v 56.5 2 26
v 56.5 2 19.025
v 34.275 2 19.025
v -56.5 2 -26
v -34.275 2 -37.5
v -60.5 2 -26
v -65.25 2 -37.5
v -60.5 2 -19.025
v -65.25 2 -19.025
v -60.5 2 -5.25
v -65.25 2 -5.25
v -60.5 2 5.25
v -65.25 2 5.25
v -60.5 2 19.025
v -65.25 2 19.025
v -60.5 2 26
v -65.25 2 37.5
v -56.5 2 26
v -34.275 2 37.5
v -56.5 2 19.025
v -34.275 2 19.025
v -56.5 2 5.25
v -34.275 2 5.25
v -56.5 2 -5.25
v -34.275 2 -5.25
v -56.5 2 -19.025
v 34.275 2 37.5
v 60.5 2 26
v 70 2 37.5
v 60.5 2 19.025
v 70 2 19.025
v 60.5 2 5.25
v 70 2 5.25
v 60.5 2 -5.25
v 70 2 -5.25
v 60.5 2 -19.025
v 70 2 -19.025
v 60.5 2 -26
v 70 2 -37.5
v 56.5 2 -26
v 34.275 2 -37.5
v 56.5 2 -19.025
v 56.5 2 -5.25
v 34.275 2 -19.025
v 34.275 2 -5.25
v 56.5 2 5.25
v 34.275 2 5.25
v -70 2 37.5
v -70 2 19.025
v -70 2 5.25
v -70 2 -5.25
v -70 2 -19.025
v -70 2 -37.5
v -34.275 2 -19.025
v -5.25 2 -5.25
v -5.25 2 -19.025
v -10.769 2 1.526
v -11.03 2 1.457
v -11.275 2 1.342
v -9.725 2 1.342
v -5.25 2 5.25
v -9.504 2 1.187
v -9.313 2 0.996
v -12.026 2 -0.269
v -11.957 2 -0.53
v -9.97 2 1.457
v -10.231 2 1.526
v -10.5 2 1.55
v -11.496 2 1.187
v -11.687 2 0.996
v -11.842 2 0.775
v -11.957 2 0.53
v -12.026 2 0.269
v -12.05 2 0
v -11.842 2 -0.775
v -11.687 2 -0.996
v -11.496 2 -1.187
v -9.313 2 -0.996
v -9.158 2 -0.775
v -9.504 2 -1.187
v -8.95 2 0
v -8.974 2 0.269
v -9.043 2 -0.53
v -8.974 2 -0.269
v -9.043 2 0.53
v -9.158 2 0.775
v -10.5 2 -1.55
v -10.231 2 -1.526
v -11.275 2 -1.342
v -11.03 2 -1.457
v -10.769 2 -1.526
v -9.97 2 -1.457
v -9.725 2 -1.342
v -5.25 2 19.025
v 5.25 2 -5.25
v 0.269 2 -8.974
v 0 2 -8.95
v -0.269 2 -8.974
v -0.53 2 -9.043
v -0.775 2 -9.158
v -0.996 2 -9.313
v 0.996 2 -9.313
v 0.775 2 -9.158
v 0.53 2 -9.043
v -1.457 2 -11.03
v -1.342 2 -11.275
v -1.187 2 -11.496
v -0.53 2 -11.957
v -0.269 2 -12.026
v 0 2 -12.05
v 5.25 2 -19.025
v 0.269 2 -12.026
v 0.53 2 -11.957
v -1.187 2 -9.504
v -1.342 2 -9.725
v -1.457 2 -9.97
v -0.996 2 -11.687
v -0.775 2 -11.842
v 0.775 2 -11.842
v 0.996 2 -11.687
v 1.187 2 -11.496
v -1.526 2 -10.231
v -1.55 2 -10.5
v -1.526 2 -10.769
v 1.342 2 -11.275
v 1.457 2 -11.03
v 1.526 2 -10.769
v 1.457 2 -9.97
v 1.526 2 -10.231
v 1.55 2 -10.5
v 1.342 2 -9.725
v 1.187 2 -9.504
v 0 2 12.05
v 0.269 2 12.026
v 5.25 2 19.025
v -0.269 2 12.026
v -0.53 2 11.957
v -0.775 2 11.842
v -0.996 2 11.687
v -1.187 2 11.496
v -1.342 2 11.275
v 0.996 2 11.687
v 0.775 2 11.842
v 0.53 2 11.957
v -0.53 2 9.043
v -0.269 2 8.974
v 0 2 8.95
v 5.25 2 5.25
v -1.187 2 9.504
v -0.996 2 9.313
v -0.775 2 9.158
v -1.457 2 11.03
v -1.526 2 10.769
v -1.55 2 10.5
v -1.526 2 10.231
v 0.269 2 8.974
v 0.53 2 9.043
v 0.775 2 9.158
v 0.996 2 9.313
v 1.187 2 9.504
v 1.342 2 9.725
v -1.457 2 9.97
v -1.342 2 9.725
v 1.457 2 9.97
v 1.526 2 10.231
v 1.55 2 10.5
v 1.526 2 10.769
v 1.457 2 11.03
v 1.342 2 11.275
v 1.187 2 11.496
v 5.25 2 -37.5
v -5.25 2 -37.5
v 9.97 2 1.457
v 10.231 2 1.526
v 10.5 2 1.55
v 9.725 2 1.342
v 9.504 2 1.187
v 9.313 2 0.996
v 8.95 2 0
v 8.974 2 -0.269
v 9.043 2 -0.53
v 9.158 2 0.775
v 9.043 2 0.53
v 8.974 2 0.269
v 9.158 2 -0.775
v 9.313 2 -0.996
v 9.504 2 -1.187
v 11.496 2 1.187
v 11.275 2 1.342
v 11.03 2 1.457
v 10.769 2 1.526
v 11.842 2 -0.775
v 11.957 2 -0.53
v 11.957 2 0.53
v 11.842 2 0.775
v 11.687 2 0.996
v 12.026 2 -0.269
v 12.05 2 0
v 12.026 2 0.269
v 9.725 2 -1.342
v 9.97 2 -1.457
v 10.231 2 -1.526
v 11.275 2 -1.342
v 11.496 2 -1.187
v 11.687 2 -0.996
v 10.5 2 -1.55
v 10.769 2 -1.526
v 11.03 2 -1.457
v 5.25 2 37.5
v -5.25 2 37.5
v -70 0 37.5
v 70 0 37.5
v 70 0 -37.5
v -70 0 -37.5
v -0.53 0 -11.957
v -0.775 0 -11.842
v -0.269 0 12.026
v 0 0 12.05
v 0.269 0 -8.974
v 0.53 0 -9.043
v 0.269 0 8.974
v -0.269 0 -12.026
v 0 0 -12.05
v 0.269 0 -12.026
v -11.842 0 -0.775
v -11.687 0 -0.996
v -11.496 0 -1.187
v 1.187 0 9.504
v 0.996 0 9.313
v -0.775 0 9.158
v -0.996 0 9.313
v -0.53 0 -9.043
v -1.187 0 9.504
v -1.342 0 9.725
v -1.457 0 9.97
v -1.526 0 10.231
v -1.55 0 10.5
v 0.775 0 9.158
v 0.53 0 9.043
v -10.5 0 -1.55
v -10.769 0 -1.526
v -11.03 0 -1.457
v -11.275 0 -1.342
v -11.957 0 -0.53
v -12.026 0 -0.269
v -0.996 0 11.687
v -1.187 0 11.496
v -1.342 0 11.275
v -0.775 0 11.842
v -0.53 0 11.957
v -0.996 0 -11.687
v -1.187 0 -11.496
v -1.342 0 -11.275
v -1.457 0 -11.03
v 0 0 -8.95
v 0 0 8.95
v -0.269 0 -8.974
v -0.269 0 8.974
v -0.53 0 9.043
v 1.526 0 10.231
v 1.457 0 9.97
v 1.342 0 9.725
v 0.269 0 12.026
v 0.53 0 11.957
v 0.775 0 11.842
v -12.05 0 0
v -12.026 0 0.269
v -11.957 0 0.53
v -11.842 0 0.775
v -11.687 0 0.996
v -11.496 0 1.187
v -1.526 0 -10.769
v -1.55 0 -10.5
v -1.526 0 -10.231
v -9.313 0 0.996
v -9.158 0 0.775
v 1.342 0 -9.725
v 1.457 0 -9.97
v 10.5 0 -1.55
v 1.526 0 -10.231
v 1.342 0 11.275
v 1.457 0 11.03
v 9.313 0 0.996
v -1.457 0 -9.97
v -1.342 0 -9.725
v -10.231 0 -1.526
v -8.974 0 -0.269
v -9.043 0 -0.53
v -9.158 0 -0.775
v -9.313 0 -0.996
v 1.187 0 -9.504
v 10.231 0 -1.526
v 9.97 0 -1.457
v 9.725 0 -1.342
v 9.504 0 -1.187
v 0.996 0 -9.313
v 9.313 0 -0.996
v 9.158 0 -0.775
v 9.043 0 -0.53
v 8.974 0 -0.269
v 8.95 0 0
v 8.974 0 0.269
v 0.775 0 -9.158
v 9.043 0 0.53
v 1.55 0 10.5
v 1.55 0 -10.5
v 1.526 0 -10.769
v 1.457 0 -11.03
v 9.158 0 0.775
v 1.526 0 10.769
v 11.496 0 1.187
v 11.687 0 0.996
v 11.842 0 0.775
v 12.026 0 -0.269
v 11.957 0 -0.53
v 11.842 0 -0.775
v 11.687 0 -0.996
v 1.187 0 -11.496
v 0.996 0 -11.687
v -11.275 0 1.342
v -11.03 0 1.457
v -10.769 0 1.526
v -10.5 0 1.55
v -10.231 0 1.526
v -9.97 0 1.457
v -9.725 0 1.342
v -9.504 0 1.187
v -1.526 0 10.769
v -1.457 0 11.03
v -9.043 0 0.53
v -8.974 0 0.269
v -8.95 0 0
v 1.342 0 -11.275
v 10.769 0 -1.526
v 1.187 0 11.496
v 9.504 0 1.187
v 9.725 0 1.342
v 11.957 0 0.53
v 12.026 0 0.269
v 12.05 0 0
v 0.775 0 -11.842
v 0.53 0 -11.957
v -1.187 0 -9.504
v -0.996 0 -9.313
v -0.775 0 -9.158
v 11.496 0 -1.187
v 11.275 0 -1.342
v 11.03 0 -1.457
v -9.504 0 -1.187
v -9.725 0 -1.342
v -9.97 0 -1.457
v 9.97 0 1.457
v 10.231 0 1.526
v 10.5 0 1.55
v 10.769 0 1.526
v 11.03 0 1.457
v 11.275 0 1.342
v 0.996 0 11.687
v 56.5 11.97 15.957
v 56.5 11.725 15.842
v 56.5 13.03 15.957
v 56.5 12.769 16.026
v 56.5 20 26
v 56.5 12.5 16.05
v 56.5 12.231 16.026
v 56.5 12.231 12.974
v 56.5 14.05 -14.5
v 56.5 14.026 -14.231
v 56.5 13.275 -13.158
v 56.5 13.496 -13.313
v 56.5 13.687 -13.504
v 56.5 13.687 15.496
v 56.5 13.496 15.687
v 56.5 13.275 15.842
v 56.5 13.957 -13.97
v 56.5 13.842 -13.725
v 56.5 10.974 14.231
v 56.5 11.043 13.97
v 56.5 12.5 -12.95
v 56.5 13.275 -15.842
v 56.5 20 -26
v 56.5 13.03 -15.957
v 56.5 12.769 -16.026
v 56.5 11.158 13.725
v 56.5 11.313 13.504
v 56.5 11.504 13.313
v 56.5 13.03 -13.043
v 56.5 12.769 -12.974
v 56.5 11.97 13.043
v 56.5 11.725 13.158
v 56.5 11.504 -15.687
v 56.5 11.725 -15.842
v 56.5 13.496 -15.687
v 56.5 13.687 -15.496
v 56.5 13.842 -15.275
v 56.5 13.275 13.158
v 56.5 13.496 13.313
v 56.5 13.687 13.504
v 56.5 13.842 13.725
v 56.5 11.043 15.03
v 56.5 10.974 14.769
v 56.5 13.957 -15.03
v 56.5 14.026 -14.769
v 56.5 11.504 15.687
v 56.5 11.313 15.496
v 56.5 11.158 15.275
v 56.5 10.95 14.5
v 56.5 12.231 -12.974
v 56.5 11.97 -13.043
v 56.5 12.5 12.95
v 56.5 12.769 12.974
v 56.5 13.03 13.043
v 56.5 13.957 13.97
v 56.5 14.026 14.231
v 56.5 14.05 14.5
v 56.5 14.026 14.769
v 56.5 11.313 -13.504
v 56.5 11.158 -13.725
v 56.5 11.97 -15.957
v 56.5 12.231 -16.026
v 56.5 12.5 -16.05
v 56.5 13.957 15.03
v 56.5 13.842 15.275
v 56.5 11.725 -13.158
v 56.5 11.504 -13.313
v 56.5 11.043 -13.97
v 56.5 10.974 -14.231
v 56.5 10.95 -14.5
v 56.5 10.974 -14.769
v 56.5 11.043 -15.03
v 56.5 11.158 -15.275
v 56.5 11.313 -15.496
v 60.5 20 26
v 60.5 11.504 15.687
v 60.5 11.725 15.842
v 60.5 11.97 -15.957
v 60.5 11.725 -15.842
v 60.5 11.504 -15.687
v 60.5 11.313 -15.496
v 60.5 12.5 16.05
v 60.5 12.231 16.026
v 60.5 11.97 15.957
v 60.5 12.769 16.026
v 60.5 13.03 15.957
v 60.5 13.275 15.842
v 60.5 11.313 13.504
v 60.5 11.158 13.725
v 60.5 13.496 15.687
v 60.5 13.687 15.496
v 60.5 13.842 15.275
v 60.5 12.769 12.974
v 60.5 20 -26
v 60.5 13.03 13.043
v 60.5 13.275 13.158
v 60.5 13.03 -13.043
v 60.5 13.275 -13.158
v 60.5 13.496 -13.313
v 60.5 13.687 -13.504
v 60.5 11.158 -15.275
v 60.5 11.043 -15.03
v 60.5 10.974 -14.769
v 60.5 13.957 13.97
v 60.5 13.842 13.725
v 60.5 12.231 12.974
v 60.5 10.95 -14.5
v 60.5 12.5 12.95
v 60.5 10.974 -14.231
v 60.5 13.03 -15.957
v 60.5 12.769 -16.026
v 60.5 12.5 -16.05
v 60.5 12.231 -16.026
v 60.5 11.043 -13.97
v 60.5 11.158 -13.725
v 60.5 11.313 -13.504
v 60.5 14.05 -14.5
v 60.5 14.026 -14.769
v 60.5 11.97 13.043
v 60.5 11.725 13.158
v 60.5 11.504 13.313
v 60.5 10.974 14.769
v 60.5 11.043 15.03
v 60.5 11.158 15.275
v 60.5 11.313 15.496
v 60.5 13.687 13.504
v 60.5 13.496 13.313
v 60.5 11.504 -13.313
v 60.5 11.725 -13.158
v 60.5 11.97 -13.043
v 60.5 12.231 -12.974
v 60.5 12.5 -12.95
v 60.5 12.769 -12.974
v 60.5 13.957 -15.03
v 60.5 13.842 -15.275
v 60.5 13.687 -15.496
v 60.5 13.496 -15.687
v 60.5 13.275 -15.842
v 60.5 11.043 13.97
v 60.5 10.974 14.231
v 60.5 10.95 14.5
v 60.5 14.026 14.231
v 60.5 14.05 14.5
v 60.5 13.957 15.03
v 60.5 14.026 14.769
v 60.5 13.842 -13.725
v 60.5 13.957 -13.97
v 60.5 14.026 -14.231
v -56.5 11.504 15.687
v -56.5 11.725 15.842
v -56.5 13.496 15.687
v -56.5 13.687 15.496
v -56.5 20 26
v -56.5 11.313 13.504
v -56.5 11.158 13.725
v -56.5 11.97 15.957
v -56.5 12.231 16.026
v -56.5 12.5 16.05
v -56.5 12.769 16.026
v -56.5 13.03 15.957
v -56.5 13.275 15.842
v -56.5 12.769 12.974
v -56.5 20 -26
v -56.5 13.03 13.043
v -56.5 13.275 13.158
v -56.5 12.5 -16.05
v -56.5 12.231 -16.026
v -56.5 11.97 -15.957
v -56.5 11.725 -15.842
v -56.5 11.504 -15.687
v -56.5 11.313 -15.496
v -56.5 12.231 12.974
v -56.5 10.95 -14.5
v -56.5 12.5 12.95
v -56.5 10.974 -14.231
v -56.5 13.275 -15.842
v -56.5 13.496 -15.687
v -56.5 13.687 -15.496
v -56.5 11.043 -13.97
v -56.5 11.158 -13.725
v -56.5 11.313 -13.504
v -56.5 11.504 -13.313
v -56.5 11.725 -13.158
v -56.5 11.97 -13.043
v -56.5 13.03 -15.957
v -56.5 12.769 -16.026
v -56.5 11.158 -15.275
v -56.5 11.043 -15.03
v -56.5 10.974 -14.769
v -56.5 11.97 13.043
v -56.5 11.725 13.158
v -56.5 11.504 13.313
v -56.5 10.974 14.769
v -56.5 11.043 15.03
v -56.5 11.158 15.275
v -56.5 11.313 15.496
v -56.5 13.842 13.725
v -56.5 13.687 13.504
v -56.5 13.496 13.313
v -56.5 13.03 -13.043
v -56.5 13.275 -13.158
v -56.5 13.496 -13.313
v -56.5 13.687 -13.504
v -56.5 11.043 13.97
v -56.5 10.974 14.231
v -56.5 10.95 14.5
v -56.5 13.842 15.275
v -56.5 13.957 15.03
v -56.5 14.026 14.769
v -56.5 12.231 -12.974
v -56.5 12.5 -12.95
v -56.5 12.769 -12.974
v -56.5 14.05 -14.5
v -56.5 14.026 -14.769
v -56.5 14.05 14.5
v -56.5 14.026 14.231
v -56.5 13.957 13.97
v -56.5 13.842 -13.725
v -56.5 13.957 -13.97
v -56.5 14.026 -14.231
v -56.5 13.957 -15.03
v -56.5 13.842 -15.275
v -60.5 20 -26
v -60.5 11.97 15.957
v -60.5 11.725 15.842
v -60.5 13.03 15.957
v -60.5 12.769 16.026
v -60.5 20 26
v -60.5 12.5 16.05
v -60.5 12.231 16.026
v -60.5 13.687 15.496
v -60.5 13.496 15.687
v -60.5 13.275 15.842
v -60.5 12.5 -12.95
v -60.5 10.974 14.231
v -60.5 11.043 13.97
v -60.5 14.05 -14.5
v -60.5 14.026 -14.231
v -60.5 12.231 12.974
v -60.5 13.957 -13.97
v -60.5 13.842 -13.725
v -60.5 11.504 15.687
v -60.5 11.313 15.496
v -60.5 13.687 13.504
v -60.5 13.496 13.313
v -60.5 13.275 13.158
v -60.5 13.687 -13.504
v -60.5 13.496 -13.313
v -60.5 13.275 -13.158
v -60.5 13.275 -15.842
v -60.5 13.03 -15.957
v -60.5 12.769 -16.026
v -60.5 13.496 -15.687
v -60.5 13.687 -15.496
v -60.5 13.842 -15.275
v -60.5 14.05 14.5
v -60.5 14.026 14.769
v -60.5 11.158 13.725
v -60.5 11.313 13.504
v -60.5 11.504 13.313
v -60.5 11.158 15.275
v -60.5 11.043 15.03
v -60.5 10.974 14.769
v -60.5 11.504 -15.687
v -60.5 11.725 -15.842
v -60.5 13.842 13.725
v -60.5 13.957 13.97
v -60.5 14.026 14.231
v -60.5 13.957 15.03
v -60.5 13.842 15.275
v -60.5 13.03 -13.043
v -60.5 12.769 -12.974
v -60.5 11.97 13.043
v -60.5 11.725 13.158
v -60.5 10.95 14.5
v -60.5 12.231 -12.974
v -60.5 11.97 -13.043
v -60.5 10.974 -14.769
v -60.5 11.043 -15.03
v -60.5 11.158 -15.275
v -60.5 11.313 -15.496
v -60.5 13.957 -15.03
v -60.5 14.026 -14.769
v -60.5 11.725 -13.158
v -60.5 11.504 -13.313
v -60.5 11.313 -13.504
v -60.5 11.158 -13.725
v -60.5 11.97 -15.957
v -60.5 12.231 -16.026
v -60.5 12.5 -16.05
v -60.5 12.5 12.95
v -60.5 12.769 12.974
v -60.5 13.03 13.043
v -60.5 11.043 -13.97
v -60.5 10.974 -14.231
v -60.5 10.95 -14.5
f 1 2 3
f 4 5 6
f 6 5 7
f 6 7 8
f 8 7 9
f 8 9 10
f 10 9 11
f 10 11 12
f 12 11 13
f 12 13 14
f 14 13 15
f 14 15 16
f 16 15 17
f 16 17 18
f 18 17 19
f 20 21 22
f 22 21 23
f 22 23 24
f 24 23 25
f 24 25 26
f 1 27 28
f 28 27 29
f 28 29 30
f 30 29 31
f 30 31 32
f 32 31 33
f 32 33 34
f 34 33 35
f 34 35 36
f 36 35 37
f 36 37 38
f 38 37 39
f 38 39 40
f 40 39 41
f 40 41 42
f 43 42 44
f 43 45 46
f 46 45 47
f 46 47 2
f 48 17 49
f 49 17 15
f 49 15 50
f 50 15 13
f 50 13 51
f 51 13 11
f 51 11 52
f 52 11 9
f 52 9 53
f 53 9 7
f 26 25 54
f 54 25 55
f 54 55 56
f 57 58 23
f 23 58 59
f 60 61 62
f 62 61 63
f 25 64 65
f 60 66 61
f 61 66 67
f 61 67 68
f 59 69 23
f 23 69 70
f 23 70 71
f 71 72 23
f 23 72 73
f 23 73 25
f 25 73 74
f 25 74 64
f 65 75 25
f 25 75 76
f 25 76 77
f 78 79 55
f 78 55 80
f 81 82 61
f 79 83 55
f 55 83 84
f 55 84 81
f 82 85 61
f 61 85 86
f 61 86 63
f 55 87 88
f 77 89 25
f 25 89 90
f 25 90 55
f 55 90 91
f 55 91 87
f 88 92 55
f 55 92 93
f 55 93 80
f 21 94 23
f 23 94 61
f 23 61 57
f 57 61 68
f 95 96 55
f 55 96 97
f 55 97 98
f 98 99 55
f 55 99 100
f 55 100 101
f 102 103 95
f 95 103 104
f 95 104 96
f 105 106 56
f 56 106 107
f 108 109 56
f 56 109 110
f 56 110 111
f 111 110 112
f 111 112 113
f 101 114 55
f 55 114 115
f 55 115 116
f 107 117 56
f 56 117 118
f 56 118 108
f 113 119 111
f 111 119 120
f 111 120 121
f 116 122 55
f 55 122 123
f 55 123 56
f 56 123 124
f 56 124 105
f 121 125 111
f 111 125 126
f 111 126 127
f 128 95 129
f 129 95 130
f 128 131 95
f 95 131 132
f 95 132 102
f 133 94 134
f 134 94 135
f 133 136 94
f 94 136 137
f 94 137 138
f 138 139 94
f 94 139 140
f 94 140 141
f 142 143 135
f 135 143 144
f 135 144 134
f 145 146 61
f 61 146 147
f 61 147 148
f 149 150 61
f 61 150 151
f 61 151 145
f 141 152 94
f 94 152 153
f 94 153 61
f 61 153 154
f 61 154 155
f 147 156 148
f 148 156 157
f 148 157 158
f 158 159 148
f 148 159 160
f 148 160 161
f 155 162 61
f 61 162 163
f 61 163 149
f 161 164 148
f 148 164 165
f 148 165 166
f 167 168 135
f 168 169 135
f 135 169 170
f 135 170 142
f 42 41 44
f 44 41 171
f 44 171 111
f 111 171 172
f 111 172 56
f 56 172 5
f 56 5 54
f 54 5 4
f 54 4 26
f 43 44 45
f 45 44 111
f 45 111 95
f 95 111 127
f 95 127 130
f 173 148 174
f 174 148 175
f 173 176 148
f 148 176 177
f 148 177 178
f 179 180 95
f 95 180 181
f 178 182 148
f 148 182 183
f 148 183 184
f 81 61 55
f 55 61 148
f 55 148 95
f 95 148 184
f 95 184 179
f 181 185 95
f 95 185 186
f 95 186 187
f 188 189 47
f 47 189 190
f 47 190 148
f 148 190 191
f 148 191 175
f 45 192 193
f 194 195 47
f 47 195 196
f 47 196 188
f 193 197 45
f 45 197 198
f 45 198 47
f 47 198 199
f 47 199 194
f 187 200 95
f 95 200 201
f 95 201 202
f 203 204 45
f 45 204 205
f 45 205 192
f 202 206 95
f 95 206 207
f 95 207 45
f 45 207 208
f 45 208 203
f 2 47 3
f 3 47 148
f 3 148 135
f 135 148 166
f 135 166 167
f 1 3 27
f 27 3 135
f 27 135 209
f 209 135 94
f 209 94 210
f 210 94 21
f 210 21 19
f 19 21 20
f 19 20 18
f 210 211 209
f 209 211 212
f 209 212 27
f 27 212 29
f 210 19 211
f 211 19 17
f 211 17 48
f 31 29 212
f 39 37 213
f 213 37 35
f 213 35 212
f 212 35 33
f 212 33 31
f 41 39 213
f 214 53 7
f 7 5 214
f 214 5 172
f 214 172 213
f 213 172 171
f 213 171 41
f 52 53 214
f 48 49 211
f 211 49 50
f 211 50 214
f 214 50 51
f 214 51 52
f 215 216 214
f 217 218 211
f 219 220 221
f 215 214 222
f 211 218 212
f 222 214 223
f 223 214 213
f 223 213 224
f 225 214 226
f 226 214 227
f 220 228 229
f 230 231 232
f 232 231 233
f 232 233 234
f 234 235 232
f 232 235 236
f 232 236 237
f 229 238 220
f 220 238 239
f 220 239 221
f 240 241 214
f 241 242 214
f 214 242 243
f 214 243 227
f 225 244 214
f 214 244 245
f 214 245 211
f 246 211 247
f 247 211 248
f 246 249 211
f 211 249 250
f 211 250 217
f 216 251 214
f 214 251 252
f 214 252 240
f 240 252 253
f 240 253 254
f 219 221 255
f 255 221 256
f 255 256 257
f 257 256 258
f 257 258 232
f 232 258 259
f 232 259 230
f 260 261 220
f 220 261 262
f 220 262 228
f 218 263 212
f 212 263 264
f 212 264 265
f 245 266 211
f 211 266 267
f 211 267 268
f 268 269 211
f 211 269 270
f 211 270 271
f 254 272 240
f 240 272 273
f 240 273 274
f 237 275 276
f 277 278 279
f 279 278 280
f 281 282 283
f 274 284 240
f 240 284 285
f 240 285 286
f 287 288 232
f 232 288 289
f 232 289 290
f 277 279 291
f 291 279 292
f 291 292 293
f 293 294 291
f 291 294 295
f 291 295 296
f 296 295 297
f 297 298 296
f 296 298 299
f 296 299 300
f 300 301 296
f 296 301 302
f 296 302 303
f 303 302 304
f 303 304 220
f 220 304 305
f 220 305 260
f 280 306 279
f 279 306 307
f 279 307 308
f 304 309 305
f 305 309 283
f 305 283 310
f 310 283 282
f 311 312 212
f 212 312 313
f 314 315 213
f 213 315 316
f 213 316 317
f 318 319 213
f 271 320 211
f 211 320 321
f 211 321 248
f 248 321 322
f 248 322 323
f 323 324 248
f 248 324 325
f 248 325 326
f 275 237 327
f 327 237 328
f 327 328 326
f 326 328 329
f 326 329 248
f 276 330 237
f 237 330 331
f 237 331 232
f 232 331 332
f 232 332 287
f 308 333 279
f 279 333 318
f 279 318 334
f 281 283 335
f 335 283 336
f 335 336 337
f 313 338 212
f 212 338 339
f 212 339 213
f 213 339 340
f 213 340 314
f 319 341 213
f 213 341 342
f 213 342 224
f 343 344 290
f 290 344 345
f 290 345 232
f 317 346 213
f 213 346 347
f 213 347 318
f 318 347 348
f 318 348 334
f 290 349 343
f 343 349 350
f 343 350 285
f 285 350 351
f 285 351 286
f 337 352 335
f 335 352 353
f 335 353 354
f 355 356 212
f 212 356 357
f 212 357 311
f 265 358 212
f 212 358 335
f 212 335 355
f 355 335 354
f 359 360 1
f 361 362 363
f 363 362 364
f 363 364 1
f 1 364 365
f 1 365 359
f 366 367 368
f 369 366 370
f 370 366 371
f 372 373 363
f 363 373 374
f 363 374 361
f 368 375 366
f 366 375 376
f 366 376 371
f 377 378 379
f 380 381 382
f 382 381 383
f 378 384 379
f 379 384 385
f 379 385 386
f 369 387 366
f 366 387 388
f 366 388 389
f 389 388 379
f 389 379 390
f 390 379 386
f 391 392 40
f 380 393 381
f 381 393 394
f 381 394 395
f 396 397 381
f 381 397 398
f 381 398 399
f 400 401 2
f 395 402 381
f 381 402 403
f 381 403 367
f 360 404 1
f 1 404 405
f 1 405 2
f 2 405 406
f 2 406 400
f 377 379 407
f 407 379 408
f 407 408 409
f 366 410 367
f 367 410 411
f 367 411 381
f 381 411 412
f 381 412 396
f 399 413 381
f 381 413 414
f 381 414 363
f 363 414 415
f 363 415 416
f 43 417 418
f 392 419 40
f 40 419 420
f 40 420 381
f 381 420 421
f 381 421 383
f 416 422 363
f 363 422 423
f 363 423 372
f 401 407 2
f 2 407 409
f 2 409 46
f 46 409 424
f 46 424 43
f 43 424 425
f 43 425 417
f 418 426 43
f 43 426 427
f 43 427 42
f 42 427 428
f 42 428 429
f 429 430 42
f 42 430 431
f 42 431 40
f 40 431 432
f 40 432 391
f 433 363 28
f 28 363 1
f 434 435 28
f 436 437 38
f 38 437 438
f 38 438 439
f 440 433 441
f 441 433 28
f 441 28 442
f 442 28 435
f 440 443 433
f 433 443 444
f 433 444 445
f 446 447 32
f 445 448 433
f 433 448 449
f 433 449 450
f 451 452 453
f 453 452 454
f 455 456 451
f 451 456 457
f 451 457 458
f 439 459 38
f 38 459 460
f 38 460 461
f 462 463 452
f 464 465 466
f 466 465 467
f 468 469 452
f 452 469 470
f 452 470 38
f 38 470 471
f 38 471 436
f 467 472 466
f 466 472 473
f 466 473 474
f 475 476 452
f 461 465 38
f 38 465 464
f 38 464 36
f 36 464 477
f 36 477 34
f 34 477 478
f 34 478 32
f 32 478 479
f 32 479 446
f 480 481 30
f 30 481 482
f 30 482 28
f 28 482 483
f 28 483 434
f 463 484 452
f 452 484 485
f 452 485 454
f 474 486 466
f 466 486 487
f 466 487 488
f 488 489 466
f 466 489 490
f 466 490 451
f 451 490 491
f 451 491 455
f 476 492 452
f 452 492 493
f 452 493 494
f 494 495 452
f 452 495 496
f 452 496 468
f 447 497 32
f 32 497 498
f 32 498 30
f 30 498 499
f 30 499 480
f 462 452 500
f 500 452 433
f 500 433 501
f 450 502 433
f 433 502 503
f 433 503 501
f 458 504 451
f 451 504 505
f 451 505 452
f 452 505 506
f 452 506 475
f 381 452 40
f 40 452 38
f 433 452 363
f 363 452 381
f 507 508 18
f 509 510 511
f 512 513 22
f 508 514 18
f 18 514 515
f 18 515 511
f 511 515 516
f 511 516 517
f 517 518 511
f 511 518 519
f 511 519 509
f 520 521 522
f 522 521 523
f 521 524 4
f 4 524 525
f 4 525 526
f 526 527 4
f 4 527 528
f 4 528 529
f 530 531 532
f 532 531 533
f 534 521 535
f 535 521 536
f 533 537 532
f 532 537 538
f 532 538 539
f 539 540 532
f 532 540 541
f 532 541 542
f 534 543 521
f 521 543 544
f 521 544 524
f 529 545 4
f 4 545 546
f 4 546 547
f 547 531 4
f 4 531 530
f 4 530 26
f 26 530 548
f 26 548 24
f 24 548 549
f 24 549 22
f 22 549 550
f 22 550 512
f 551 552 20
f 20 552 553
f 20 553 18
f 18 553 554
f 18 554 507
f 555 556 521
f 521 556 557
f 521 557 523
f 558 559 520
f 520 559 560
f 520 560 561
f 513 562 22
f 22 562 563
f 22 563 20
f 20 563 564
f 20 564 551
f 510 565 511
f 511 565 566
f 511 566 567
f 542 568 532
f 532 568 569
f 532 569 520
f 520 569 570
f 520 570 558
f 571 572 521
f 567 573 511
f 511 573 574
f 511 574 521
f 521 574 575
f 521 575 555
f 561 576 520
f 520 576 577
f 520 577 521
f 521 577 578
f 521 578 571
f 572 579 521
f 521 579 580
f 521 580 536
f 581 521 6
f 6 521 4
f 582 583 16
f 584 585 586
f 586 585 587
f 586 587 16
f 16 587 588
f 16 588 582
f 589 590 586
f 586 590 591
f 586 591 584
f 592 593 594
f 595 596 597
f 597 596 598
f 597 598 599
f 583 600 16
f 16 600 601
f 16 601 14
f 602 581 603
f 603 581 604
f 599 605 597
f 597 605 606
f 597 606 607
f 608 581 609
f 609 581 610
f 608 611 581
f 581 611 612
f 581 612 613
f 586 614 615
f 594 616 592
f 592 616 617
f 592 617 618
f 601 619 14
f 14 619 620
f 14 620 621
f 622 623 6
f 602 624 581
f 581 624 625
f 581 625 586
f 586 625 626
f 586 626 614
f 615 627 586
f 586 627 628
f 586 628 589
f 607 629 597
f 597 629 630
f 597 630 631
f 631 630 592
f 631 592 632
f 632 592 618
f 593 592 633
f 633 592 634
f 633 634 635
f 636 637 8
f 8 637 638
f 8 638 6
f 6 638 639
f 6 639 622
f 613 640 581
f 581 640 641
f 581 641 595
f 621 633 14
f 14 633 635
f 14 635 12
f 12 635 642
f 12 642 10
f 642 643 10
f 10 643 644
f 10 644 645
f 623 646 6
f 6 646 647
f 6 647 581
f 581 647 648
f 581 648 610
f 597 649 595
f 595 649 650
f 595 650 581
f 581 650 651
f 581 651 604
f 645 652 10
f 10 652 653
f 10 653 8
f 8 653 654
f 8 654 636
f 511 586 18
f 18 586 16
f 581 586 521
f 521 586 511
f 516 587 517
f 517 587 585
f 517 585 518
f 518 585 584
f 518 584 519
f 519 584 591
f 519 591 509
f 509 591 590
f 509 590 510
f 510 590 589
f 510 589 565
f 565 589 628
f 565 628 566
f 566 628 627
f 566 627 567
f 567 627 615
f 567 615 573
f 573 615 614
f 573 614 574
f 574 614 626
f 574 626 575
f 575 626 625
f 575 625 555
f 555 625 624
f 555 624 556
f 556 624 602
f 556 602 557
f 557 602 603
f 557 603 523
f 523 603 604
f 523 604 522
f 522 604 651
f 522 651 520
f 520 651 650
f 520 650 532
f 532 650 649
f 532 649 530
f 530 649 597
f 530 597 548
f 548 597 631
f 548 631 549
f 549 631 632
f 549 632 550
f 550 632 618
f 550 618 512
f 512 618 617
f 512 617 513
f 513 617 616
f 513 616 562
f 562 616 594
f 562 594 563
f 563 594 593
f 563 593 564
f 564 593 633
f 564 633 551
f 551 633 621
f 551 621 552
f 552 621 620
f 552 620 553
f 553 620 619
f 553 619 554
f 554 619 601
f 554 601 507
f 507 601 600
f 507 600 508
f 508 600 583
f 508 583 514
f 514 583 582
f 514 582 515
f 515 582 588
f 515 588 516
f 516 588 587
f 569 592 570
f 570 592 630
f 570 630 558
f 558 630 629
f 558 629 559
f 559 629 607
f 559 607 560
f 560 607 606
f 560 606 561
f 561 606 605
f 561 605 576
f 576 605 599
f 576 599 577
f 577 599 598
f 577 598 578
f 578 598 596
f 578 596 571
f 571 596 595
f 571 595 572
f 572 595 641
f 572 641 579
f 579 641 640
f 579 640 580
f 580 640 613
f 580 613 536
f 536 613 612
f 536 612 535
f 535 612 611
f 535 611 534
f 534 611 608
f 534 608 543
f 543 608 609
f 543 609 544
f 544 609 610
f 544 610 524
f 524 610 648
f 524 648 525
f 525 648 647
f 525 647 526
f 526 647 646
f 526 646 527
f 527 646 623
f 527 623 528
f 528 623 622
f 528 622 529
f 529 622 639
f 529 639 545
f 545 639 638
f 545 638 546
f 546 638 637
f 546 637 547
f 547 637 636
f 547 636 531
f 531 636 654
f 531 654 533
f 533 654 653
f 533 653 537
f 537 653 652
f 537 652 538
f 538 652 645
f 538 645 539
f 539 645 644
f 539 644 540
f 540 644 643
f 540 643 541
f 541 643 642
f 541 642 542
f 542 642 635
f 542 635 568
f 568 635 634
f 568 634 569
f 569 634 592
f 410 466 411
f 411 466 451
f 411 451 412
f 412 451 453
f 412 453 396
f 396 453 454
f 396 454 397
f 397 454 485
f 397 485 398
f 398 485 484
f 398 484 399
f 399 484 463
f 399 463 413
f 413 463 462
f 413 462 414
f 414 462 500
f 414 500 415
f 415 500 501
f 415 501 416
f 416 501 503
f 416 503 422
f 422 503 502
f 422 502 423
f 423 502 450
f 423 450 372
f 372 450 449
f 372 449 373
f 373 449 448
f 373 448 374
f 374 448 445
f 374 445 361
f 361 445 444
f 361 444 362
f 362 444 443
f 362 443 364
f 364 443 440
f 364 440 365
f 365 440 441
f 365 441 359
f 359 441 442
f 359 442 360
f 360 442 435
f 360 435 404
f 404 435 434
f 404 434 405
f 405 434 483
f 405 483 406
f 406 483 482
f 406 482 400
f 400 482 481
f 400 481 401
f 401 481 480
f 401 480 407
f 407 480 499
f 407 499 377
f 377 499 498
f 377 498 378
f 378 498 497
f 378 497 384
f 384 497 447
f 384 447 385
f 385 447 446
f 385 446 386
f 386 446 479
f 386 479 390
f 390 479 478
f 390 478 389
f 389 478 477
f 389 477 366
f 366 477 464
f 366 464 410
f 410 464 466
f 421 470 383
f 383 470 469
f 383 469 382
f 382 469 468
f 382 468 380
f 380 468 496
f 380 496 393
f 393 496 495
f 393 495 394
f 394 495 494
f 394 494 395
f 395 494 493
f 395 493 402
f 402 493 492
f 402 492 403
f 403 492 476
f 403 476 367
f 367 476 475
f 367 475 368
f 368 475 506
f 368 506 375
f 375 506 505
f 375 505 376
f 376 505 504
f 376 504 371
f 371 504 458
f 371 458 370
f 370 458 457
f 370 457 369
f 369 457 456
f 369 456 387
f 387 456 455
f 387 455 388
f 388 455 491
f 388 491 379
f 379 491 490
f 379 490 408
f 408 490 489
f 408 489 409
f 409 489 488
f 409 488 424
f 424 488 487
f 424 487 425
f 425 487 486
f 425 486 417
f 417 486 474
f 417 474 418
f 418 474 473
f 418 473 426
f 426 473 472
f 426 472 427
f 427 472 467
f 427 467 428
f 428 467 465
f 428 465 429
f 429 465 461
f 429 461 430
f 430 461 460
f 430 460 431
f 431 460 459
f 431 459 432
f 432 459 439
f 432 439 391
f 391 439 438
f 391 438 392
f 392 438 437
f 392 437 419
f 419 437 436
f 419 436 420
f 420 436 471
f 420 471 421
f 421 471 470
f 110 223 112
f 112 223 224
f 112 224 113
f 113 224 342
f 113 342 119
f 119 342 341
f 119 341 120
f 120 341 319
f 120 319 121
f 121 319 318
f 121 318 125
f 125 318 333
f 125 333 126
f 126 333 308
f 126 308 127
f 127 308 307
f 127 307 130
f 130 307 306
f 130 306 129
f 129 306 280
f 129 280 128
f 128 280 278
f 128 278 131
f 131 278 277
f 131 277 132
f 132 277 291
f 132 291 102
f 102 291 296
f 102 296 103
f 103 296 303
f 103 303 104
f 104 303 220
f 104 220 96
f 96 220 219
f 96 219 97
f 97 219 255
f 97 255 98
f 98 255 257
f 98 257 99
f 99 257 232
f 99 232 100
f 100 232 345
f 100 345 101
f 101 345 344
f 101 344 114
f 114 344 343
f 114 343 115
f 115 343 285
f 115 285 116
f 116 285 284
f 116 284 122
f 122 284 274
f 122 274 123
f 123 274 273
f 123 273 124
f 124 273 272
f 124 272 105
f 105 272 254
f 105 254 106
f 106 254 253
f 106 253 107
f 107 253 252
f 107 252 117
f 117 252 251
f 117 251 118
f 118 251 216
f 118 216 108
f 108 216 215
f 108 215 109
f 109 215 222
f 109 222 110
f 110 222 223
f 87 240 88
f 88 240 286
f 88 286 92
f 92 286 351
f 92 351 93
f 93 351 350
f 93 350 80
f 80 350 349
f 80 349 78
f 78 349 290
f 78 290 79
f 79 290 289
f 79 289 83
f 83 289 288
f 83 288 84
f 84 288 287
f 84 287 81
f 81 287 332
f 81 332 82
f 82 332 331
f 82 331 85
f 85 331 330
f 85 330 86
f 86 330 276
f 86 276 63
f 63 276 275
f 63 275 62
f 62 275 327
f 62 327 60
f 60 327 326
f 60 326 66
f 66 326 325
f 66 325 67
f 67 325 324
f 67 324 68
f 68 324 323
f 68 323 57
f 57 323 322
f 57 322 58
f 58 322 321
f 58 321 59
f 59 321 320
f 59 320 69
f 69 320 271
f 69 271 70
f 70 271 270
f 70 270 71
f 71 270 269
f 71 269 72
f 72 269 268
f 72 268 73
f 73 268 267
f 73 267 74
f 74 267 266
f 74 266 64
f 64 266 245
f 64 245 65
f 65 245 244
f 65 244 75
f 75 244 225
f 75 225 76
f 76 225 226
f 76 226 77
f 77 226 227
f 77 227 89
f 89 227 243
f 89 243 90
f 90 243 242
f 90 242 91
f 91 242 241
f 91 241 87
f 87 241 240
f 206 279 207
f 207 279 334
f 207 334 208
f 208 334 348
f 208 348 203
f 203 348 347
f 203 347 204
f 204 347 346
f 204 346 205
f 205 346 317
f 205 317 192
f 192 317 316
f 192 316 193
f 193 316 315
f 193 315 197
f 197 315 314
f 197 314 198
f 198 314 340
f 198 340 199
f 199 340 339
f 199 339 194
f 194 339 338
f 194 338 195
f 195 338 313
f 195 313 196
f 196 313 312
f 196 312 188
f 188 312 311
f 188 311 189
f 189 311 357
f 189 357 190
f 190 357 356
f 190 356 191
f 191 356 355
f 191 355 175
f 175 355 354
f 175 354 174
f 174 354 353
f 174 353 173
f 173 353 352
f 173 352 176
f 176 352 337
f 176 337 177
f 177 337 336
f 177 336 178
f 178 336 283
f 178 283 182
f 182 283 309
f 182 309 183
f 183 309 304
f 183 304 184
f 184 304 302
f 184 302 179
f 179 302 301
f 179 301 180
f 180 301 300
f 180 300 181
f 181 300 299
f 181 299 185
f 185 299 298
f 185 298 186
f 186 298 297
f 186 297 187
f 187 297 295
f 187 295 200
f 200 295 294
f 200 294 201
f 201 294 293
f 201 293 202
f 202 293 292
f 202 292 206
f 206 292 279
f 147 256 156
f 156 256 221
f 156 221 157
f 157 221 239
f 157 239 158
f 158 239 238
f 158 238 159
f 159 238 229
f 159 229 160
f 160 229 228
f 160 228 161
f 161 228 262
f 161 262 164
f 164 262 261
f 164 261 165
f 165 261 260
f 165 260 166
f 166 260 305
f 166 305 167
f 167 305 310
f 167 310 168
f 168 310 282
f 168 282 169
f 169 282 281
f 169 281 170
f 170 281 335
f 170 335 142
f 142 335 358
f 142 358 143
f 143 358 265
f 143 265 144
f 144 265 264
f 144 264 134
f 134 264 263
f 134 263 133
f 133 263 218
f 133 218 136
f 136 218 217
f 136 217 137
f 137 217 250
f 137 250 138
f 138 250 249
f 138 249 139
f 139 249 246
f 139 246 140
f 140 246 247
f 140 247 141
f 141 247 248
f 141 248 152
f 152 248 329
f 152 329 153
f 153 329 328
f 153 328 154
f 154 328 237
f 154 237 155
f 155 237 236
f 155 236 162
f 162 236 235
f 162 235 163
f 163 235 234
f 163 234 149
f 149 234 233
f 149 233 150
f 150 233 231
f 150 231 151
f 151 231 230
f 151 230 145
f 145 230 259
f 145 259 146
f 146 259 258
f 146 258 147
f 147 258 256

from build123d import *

# Parameters (mm, degrees)
SKETCH_1_W          = 140
SKETCH_1_H          = 75
EXTRUDE_1_DEPTH     = 2
SKETCH_2_W          = 4
SKETCH_2_H          = 52
EXTRUDE_2_DEPTH     = 18
SKETCH_3_R          = 1.55
CUT_EXTRUDE_1_DEPTH = 15
SKETCH_5_R          = 1.55
CUT_EXTRUDE_2_DEPTH = 15


with BuildPart() as part:
    # 草图1 → 凸台-拉伸1 (new body)
    with BuildSketch(Plane(origin=(0, 0, 0), x_dir=(1, 0, 0), z_dir=(0, 1, 0))):
        Rectangle(SKETCH_1_W, SKETCH_1_H)
    extrude(amount=EXTRUDE_1_DEPTH)

    # 草图2 → 凸台-拉伸2 (add)
    with BuildSketch(Plane(origin=(0, 2, 0), x_dir=(1, 0, 0), z_dir=(0, 1, 0))):
        with Locations((58.5, 0)):
            Rectangle(SKETCH_2_W, SKETCH_2_H)
        with Locations((-58.5, 0)):
            Rectangle(SKETCH_2_W, SKETCH_2_H)
    extrude(amount=EXTRUDE_2_DEPTH)

    # 草图3 → 切除-拉伸1 (cut)
    with BuildSketch(Plane.ZY.offset(60.5)):
        with Locations((-14.5, 12.5)):
            Circle(SKETCH_3_R)
        with Locations((14.5, 12.5)):
            Circle(SKETCH_3_R)
    cut_extrude_1 = extrude(amount=-CUT_EXTRUDE_1_DEPTH, mode=Mode.SUBTRACT)

    # 镜向1: 切除-拉伸1 across plane
    add(cut_extrude_1.mirror(Plane(origin=(0, 0, 0), x_dir=(0, 0, 1), z_dir=(1, 0, 0))), mode=Mode.SUBTRACT)

    # 草图5 → 切除-拉伸2 (cut)
    with BuildSketch(Plane(origin=(0, 0, 0), x_dir=(-1, 0, 0), z_dir=(0, -1, 0))):
        with Locations(Location((0, -10.5, 0), (0, 0, 90))):
            Circle(SKETCH_5_R)
        with Locations(Location((-10.5, 0, 0), (0, 0, 90))):
            Circle(SKETCH_5_R)
        with Locations(Location((10.5, 0, 0), (0, 0, 90))):
            Circle(SKETCH_5_R)
        with Locations(Location((0, 10.5, 0), (0, 0, 90))):
            Circle(SKETCH_5_R)
    extrude(amount=-CUT_EXTRUDE_2_DEPTH, mode=Mode.SUBTRACT)


solid = part.part
